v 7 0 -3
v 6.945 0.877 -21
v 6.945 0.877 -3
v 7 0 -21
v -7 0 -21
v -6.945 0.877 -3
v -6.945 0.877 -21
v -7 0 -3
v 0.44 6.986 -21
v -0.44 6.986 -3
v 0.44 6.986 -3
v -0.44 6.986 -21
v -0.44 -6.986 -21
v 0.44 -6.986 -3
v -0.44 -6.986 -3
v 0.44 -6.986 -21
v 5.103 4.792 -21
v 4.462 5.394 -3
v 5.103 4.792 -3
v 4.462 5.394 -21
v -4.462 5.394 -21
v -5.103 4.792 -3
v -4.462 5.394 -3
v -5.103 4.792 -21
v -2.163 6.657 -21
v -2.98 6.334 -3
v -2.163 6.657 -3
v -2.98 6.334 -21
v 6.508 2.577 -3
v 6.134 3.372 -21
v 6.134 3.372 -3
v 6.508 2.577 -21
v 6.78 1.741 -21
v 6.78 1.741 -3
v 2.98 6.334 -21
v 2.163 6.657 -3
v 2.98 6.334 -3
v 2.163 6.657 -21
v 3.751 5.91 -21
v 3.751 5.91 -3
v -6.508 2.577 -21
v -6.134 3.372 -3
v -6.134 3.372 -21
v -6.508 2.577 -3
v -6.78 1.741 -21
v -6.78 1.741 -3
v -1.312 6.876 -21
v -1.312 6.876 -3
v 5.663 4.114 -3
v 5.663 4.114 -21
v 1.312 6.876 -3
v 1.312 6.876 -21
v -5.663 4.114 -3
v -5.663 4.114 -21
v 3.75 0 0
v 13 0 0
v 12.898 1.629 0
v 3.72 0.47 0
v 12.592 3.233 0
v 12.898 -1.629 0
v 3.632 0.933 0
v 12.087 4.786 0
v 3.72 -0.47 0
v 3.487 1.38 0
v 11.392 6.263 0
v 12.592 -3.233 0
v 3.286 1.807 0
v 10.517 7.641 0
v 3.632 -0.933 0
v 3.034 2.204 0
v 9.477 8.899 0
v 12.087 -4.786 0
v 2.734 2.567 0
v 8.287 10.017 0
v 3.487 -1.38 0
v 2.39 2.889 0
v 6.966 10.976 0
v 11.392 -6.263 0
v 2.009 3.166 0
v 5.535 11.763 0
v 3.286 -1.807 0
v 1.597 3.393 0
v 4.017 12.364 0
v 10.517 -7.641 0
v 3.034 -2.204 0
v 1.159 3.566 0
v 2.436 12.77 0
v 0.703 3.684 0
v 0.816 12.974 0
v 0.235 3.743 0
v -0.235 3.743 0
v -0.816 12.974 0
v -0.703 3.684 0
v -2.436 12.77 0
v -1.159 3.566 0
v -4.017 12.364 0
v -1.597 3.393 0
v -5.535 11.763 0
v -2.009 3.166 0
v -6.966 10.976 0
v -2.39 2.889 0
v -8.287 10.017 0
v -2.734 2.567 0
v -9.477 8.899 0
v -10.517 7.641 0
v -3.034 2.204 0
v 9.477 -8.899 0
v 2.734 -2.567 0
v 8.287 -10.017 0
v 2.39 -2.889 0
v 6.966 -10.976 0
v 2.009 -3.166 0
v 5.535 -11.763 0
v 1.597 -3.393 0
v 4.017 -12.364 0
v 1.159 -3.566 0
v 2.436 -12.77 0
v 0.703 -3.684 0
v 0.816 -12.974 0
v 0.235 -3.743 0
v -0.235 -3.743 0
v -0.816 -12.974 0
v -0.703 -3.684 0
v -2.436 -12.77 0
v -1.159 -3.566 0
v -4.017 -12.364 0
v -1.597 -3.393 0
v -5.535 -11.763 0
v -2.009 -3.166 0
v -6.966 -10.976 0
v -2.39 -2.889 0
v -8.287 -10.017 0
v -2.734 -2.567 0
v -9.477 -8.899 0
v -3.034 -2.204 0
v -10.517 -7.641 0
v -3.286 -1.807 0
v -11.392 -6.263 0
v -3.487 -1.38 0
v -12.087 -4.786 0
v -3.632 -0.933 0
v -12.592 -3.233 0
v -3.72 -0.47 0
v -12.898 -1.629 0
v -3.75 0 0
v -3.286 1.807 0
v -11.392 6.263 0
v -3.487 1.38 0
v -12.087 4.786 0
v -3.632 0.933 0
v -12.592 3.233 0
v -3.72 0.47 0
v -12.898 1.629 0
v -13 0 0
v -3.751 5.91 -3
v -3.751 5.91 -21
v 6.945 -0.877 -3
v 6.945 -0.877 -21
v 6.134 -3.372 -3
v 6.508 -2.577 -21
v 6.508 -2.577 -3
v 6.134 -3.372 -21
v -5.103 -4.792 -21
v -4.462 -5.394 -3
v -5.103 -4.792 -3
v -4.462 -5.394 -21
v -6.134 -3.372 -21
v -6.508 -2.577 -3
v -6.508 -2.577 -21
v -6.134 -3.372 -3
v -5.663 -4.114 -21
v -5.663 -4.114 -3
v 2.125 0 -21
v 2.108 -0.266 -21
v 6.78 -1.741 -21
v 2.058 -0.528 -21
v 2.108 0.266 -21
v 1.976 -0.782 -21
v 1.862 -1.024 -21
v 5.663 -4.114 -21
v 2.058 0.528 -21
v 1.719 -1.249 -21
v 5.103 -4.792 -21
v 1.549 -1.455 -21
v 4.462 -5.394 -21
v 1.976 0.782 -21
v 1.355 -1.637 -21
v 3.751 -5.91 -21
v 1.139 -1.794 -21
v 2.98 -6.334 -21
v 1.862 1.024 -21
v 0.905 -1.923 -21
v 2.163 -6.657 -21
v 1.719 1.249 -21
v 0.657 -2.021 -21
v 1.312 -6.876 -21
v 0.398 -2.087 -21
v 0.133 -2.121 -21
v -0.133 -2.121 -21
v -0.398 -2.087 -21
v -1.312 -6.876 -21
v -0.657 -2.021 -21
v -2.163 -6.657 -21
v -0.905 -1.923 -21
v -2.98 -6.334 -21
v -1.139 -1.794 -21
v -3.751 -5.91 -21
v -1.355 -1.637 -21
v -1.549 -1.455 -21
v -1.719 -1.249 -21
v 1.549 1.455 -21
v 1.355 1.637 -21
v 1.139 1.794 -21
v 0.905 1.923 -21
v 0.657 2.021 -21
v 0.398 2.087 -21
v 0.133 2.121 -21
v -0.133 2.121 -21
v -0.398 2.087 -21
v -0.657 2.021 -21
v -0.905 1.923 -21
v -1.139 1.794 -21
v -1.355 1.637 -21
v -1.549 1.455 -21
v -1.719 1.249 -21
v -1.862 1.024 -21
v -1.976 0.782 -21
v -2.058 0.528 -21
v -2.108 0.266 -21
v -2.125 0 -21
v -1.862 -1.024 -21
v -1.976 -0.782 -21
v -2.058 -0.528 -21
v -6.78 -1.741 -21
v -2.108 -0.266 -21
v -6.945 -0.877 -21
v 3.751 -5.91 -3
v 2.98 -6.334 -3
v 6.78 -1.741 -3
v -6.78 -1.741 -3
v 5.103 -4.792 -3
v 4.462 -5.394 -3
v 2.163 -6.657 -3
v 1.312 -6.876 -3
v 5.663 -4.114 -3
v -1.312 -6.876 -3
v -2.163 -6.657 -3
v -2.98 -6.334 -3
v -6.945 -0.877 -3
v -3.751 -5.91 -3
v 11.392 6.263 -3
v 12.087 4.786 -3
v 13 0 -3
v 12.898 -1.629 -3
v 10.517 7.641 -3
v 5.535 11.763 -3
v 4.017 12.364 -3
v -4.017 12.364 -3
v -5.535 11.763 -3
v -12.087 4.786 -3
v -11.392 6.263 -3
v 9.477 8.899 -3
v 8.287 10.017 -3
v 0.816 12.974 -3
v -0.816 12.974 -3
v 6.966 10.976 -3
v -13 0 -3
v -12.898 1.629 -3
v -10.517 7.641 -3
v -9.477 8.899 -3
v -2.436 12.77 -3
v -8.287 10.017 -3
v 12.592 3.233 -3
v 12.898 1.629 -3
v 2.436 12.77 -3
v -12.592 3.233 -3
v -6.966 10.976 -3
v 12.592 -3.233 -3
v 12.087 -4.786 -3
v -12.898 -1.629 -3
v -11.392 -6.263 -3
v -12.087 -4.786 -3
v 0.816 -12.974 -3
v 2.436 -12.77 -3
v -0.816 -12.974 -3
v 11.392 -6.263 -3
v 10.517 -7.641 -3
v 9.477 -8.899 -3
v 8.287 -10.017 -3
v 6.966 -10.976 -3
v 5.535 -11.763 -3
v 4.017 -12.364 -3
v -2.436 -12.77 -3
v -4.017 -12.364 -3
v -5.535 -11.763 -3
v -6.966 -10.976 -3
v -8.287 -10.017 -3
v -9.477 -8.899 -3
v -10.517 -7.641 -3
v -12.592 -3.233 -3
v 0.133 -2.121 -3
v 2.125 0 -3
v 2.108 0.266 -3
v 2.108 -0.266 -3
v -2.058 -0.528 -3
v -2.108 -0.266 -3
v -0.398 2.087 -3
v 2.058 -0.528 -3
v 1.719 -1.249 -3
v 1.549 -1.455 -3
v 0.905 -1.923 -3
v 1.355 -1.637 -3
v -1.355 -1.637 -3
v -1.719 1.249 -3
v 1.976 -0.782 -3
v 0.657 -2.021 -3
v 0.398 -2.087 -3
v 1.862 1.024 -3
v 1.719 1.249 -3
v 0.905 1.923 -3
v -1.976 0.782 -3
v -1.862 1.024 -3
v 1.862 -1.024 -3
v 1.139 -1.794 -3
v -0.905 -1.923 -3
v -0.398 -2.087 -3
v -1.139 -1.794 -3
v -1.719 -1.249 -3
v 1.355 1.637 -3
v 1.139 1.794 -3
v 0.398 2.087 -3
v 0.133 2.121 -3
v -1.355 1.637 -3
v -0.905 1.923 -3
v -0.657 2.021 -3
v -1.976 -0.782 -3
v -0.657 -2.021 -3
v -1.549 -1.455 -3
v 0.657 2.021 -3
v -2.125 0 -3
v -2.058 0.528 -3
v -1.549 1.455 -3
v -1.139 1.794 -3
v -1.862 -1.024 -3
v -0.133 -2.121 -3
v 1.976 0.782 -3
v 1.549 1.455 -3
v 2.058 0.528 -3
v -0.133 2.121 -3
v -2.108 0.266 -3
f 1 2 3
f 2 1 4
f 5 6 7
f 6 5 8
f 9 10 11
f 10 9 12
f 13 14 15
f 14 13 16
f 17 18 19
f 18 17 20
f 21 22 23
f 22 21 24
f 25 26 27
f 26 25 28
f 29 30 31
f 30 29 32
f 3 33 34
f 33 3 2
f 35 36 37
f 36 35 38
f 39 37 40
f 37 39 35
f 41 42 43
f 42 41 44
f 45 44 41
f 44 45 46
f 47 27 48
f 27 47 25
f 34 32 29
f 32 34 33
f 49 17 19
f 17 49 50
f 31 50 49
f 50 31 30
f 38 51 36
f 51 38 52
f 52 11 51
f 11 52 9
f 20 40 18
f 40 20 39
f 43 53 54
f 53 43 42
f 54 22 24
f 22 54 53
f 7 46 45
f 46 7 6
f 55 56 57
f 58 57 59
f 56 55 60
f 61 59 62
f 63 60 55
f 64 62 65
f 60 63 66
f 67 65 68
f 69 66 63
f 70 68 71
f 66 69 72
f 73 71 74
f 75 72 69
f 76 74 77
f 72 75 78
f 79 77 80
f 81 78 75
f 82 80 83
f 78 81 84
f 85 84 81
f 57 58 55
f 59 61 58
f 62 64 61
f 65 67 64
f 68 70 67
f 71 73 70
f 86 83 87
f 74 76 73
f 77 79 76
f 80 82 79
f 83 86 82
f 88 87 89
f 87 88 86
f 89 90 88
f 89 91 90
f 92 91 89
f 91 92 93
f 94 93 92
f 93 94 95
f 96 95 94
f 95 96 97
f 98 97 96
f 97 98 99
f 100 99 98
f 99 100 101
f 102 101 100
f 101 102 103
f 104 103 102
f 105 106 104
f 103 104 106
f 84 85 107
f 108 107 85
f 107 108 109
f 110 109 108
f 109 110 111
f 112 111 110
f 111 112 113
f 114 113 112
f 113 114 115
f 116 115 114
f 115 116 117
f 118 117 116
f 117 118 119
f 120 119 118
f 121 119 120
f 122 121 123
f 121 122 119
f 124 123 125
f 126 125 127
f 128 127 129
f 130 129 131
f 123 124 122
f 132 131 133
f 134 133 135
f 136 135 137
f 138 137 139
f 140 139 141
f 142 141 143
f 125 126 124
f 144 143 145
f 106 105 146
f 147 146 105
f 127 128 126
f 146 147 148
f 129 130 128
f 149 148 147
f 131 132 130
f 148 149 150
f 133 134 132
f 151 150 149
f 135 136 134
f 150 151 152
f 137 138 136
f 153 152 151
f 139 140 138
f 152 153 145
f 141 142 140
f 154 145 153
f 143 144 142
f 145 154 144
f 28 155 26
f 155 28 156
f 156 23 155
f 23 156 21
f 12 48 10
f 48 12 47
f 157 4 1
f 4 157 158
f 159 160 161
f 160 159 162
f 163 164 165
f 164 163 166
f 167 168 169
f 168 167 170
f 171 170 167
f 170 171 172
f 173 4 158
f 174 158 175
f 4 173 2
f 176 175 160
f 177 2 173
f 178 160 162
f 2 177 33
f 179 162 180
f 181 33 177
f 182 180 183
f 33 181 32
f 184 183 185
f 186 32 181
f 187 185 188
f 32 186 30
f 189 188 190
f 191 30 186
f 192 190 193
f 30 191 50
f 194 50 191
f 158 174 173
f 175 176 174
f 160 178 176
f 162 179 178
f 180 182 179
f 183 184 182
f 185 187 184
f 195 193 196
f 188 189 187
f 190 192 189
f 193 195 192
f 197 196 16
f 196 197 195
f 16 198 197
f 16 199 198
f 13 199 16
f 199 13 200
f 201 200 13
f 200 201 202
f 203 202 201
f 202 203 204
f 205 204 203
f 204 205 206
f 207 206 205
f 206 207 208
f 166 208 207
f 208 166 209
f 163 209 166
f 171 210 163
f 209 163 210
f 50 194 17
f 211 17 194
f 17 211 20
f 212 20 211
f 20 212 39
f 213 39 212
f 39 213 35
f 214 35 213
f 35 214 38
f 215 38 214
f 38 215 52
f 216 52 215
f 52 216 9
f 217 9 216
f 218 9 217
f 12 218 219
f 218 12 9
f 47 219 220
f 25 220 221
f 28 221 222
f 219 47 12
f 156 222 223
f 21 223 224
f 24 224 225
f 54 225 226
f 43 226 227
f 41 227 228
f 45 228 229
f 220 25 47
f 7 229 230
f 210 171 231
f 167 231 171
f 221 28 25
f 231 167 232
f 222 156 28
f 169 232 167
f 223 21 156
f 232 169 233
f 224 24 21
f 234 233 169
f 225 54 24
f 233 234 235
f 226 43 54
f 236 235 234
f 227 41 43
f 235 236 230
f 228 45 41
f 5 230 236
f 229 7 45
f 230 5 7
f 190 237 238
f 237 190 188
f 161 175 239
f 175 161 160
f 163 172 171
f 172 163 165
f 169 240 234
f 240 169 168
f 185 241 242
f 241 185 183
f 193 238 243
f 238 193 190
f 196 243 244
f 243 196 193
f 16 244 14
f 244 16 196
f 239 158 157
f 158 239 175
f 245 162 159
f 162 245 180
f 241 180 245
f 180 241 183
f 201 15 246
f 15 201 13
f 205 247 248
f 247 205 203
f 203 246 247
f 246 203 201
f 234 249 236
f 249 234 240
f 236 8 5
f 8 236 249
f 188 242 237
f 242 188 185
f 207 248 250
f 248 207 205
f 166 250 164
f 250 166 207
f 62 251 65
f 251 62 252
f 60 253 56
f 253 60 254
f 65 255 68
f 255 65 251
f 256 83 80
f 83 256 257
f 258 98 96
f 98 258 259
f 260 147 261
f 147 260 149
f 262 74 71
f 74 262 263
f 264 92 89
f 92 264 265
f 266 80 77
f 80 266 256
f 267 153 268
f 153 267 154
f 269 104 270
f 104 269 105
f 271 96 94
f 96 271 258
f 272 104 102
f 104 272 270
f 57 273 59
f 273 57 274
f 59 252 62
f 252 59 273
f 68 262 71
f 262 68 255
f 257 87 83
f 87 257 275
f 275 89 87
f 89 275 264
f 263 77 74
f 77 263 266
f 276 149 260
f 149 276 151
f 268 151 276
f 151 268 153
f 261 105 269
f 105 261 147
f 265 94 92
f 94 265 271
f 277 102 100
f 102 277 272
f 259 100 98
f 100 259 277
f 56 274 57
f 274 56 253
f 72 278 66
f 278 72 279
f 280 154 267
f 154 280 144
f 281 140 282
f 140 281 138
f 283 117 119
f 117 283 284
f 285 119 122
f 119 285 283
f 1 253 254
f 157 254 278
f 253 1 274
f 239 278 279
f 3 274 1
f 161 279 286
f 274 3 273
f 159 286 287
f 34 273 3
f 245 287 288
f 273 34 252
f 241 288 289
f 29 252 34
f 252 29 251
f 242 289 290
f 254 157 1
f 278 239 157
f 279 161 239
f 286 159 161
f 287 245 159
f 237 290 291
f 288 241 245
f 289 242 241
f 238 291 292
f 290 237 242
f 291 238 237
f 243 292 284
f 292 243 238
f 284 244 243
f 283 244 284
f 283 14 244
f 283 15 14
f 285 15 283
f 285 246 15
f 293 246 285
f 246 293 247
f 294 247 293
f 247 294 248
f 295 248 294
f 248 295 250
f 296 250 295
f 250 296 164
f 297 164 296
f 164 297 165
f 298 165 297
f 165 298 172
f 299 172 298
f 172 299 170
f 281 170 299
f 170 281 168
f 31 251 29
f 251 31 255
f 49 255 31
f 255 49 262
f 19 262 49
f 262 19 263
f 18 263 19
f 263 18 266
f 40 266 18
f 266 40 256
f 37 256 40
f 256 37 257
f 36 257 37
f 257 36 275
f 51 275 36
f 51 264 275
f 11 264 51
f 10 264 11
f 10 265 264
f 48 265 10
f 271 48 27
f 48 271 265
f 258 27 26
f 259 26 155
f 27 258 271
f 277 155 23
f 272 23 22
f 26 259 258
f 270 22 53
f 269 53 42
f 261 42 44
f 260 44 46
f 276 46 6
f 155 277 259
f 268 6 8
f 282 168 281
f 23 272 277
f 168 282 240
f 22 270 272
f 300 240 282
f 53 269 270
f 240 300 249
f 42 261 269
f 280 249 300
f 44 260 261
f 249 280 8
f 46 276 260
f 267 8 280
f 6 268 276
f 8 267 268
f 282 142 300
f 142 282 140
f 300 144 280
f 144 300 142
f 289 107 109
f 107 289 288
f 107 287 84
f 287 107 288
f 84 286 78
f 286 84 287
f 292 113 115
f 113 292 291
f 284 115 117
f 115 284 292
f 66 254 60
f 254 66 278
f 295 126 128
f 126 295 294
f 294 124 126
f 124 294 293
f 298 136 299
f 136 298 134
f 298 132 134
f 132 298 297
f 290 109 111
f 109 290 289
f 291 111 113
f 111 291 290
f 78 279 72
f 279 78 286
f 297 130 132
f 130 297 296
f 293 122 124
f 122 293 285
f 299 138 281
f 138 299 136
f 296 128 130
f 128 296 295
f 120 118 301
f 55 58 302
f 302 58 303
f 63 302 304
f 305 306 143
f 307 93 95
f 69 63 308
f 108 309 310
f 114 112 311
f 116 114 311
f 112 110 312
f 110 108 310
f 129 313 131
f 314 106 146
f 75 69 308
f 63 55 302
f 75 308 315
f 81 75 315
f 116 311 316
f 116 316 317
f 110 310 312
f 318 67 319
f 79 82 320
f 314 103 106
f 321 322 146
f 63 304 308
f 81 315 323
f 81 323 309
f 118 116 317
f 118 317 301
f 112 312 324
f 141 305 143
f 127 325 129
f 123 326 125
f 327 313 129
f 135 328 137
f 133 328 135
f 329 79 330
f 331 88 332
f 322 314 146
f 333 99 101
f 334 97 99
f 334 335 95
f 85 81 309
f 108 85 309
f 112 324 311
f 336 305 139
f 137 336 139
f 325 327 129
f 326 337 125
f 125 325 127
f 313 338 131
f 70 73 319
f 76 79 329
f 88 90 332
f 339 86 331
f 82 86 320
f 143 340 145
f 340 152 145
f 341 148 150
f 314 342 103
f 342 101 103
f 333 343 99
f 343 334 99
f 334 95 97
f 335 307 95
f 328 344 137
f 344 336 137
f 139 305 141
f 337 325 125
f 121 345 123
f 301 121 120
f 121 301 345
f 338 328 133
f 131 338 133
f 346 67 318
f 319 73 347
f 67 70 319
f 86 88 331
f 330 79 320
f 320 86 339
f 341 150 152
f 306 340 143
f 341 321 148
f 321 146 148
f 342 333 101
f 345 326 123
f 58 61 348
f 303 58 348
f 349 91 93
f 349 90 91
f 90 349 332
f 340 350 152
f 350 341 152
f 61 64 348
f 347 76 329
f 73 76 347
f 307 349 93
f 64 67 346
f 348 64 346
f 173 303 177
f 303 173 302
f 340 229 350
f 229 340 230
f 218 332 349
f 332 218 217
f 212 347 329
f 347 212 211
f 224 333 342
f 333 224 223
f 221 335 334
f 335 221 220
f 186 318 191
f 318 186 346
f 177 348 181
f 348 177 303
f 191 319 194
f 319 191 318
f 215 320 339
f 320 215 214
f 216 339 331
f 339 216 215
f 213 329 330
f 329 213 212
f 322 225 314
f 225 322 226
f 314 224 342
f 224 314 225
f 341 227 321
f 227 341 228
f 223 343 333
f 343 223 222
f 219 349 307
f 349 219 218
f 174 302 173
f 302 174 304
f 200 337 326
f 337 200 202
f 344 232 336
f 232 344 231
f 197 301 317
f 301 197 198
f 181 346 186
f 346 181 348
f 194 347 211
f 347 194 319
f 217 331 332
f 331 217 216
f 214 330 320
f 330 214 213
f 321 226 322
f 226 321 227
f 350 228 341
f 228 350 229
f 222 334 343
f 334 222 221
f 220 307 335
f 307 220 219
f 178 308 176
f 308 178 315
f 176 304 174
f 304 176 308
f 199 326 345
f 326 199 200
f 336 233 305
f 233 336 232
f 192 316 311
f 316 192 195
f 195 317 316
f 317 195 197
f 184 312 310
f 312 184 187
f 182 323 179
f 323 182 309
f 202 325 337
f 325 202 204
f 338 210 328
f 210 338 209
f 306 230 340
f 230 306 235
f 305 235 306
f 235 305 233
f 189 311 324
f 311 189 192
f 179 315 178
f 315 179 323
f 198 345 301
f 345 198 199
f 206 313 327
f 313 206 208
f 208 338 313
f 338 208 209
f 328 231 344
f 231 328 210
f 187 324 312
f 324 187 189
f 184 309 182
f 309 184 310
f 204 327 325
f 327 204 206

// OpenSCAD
$fn = 50;


difference() {
	union() {
		translate(v = [0, 0, -21.0000000000]) {
			cylinder(h = 21, r = 7.0000000000);
		}
		translate(v = [0, 0, -3.0000000000]) {
			cylinder(h = 3, r = 13.0000000000);
		}
	}
	union() {
		translate(v = [0, 0, 0]) {
			rotate(a = [0, 0, 0]) {
				difference() {
					union() {
						#translate(v = [0, 0, -21.0000000000]) {
							cylinder(h = 21, r = 2.0000000000);
						}
						#translate(v = [0, 0, -3]) {
							cylinder(h = 3, r = 7.0000000000, r1 = 2.1250000000, r2 = 3.7500000000);
						}
						#translate(v = [0, 0, -21.0000000000]) {
							cylinder(h = 21, r = 2.1250000000);
						}
						#translate(v = [0, 0, -21.0000000000]) {
							cylinder(h = 21, r = 2.0000000000);
						}
					}
					union();
				}
			}
		}
	}
}
